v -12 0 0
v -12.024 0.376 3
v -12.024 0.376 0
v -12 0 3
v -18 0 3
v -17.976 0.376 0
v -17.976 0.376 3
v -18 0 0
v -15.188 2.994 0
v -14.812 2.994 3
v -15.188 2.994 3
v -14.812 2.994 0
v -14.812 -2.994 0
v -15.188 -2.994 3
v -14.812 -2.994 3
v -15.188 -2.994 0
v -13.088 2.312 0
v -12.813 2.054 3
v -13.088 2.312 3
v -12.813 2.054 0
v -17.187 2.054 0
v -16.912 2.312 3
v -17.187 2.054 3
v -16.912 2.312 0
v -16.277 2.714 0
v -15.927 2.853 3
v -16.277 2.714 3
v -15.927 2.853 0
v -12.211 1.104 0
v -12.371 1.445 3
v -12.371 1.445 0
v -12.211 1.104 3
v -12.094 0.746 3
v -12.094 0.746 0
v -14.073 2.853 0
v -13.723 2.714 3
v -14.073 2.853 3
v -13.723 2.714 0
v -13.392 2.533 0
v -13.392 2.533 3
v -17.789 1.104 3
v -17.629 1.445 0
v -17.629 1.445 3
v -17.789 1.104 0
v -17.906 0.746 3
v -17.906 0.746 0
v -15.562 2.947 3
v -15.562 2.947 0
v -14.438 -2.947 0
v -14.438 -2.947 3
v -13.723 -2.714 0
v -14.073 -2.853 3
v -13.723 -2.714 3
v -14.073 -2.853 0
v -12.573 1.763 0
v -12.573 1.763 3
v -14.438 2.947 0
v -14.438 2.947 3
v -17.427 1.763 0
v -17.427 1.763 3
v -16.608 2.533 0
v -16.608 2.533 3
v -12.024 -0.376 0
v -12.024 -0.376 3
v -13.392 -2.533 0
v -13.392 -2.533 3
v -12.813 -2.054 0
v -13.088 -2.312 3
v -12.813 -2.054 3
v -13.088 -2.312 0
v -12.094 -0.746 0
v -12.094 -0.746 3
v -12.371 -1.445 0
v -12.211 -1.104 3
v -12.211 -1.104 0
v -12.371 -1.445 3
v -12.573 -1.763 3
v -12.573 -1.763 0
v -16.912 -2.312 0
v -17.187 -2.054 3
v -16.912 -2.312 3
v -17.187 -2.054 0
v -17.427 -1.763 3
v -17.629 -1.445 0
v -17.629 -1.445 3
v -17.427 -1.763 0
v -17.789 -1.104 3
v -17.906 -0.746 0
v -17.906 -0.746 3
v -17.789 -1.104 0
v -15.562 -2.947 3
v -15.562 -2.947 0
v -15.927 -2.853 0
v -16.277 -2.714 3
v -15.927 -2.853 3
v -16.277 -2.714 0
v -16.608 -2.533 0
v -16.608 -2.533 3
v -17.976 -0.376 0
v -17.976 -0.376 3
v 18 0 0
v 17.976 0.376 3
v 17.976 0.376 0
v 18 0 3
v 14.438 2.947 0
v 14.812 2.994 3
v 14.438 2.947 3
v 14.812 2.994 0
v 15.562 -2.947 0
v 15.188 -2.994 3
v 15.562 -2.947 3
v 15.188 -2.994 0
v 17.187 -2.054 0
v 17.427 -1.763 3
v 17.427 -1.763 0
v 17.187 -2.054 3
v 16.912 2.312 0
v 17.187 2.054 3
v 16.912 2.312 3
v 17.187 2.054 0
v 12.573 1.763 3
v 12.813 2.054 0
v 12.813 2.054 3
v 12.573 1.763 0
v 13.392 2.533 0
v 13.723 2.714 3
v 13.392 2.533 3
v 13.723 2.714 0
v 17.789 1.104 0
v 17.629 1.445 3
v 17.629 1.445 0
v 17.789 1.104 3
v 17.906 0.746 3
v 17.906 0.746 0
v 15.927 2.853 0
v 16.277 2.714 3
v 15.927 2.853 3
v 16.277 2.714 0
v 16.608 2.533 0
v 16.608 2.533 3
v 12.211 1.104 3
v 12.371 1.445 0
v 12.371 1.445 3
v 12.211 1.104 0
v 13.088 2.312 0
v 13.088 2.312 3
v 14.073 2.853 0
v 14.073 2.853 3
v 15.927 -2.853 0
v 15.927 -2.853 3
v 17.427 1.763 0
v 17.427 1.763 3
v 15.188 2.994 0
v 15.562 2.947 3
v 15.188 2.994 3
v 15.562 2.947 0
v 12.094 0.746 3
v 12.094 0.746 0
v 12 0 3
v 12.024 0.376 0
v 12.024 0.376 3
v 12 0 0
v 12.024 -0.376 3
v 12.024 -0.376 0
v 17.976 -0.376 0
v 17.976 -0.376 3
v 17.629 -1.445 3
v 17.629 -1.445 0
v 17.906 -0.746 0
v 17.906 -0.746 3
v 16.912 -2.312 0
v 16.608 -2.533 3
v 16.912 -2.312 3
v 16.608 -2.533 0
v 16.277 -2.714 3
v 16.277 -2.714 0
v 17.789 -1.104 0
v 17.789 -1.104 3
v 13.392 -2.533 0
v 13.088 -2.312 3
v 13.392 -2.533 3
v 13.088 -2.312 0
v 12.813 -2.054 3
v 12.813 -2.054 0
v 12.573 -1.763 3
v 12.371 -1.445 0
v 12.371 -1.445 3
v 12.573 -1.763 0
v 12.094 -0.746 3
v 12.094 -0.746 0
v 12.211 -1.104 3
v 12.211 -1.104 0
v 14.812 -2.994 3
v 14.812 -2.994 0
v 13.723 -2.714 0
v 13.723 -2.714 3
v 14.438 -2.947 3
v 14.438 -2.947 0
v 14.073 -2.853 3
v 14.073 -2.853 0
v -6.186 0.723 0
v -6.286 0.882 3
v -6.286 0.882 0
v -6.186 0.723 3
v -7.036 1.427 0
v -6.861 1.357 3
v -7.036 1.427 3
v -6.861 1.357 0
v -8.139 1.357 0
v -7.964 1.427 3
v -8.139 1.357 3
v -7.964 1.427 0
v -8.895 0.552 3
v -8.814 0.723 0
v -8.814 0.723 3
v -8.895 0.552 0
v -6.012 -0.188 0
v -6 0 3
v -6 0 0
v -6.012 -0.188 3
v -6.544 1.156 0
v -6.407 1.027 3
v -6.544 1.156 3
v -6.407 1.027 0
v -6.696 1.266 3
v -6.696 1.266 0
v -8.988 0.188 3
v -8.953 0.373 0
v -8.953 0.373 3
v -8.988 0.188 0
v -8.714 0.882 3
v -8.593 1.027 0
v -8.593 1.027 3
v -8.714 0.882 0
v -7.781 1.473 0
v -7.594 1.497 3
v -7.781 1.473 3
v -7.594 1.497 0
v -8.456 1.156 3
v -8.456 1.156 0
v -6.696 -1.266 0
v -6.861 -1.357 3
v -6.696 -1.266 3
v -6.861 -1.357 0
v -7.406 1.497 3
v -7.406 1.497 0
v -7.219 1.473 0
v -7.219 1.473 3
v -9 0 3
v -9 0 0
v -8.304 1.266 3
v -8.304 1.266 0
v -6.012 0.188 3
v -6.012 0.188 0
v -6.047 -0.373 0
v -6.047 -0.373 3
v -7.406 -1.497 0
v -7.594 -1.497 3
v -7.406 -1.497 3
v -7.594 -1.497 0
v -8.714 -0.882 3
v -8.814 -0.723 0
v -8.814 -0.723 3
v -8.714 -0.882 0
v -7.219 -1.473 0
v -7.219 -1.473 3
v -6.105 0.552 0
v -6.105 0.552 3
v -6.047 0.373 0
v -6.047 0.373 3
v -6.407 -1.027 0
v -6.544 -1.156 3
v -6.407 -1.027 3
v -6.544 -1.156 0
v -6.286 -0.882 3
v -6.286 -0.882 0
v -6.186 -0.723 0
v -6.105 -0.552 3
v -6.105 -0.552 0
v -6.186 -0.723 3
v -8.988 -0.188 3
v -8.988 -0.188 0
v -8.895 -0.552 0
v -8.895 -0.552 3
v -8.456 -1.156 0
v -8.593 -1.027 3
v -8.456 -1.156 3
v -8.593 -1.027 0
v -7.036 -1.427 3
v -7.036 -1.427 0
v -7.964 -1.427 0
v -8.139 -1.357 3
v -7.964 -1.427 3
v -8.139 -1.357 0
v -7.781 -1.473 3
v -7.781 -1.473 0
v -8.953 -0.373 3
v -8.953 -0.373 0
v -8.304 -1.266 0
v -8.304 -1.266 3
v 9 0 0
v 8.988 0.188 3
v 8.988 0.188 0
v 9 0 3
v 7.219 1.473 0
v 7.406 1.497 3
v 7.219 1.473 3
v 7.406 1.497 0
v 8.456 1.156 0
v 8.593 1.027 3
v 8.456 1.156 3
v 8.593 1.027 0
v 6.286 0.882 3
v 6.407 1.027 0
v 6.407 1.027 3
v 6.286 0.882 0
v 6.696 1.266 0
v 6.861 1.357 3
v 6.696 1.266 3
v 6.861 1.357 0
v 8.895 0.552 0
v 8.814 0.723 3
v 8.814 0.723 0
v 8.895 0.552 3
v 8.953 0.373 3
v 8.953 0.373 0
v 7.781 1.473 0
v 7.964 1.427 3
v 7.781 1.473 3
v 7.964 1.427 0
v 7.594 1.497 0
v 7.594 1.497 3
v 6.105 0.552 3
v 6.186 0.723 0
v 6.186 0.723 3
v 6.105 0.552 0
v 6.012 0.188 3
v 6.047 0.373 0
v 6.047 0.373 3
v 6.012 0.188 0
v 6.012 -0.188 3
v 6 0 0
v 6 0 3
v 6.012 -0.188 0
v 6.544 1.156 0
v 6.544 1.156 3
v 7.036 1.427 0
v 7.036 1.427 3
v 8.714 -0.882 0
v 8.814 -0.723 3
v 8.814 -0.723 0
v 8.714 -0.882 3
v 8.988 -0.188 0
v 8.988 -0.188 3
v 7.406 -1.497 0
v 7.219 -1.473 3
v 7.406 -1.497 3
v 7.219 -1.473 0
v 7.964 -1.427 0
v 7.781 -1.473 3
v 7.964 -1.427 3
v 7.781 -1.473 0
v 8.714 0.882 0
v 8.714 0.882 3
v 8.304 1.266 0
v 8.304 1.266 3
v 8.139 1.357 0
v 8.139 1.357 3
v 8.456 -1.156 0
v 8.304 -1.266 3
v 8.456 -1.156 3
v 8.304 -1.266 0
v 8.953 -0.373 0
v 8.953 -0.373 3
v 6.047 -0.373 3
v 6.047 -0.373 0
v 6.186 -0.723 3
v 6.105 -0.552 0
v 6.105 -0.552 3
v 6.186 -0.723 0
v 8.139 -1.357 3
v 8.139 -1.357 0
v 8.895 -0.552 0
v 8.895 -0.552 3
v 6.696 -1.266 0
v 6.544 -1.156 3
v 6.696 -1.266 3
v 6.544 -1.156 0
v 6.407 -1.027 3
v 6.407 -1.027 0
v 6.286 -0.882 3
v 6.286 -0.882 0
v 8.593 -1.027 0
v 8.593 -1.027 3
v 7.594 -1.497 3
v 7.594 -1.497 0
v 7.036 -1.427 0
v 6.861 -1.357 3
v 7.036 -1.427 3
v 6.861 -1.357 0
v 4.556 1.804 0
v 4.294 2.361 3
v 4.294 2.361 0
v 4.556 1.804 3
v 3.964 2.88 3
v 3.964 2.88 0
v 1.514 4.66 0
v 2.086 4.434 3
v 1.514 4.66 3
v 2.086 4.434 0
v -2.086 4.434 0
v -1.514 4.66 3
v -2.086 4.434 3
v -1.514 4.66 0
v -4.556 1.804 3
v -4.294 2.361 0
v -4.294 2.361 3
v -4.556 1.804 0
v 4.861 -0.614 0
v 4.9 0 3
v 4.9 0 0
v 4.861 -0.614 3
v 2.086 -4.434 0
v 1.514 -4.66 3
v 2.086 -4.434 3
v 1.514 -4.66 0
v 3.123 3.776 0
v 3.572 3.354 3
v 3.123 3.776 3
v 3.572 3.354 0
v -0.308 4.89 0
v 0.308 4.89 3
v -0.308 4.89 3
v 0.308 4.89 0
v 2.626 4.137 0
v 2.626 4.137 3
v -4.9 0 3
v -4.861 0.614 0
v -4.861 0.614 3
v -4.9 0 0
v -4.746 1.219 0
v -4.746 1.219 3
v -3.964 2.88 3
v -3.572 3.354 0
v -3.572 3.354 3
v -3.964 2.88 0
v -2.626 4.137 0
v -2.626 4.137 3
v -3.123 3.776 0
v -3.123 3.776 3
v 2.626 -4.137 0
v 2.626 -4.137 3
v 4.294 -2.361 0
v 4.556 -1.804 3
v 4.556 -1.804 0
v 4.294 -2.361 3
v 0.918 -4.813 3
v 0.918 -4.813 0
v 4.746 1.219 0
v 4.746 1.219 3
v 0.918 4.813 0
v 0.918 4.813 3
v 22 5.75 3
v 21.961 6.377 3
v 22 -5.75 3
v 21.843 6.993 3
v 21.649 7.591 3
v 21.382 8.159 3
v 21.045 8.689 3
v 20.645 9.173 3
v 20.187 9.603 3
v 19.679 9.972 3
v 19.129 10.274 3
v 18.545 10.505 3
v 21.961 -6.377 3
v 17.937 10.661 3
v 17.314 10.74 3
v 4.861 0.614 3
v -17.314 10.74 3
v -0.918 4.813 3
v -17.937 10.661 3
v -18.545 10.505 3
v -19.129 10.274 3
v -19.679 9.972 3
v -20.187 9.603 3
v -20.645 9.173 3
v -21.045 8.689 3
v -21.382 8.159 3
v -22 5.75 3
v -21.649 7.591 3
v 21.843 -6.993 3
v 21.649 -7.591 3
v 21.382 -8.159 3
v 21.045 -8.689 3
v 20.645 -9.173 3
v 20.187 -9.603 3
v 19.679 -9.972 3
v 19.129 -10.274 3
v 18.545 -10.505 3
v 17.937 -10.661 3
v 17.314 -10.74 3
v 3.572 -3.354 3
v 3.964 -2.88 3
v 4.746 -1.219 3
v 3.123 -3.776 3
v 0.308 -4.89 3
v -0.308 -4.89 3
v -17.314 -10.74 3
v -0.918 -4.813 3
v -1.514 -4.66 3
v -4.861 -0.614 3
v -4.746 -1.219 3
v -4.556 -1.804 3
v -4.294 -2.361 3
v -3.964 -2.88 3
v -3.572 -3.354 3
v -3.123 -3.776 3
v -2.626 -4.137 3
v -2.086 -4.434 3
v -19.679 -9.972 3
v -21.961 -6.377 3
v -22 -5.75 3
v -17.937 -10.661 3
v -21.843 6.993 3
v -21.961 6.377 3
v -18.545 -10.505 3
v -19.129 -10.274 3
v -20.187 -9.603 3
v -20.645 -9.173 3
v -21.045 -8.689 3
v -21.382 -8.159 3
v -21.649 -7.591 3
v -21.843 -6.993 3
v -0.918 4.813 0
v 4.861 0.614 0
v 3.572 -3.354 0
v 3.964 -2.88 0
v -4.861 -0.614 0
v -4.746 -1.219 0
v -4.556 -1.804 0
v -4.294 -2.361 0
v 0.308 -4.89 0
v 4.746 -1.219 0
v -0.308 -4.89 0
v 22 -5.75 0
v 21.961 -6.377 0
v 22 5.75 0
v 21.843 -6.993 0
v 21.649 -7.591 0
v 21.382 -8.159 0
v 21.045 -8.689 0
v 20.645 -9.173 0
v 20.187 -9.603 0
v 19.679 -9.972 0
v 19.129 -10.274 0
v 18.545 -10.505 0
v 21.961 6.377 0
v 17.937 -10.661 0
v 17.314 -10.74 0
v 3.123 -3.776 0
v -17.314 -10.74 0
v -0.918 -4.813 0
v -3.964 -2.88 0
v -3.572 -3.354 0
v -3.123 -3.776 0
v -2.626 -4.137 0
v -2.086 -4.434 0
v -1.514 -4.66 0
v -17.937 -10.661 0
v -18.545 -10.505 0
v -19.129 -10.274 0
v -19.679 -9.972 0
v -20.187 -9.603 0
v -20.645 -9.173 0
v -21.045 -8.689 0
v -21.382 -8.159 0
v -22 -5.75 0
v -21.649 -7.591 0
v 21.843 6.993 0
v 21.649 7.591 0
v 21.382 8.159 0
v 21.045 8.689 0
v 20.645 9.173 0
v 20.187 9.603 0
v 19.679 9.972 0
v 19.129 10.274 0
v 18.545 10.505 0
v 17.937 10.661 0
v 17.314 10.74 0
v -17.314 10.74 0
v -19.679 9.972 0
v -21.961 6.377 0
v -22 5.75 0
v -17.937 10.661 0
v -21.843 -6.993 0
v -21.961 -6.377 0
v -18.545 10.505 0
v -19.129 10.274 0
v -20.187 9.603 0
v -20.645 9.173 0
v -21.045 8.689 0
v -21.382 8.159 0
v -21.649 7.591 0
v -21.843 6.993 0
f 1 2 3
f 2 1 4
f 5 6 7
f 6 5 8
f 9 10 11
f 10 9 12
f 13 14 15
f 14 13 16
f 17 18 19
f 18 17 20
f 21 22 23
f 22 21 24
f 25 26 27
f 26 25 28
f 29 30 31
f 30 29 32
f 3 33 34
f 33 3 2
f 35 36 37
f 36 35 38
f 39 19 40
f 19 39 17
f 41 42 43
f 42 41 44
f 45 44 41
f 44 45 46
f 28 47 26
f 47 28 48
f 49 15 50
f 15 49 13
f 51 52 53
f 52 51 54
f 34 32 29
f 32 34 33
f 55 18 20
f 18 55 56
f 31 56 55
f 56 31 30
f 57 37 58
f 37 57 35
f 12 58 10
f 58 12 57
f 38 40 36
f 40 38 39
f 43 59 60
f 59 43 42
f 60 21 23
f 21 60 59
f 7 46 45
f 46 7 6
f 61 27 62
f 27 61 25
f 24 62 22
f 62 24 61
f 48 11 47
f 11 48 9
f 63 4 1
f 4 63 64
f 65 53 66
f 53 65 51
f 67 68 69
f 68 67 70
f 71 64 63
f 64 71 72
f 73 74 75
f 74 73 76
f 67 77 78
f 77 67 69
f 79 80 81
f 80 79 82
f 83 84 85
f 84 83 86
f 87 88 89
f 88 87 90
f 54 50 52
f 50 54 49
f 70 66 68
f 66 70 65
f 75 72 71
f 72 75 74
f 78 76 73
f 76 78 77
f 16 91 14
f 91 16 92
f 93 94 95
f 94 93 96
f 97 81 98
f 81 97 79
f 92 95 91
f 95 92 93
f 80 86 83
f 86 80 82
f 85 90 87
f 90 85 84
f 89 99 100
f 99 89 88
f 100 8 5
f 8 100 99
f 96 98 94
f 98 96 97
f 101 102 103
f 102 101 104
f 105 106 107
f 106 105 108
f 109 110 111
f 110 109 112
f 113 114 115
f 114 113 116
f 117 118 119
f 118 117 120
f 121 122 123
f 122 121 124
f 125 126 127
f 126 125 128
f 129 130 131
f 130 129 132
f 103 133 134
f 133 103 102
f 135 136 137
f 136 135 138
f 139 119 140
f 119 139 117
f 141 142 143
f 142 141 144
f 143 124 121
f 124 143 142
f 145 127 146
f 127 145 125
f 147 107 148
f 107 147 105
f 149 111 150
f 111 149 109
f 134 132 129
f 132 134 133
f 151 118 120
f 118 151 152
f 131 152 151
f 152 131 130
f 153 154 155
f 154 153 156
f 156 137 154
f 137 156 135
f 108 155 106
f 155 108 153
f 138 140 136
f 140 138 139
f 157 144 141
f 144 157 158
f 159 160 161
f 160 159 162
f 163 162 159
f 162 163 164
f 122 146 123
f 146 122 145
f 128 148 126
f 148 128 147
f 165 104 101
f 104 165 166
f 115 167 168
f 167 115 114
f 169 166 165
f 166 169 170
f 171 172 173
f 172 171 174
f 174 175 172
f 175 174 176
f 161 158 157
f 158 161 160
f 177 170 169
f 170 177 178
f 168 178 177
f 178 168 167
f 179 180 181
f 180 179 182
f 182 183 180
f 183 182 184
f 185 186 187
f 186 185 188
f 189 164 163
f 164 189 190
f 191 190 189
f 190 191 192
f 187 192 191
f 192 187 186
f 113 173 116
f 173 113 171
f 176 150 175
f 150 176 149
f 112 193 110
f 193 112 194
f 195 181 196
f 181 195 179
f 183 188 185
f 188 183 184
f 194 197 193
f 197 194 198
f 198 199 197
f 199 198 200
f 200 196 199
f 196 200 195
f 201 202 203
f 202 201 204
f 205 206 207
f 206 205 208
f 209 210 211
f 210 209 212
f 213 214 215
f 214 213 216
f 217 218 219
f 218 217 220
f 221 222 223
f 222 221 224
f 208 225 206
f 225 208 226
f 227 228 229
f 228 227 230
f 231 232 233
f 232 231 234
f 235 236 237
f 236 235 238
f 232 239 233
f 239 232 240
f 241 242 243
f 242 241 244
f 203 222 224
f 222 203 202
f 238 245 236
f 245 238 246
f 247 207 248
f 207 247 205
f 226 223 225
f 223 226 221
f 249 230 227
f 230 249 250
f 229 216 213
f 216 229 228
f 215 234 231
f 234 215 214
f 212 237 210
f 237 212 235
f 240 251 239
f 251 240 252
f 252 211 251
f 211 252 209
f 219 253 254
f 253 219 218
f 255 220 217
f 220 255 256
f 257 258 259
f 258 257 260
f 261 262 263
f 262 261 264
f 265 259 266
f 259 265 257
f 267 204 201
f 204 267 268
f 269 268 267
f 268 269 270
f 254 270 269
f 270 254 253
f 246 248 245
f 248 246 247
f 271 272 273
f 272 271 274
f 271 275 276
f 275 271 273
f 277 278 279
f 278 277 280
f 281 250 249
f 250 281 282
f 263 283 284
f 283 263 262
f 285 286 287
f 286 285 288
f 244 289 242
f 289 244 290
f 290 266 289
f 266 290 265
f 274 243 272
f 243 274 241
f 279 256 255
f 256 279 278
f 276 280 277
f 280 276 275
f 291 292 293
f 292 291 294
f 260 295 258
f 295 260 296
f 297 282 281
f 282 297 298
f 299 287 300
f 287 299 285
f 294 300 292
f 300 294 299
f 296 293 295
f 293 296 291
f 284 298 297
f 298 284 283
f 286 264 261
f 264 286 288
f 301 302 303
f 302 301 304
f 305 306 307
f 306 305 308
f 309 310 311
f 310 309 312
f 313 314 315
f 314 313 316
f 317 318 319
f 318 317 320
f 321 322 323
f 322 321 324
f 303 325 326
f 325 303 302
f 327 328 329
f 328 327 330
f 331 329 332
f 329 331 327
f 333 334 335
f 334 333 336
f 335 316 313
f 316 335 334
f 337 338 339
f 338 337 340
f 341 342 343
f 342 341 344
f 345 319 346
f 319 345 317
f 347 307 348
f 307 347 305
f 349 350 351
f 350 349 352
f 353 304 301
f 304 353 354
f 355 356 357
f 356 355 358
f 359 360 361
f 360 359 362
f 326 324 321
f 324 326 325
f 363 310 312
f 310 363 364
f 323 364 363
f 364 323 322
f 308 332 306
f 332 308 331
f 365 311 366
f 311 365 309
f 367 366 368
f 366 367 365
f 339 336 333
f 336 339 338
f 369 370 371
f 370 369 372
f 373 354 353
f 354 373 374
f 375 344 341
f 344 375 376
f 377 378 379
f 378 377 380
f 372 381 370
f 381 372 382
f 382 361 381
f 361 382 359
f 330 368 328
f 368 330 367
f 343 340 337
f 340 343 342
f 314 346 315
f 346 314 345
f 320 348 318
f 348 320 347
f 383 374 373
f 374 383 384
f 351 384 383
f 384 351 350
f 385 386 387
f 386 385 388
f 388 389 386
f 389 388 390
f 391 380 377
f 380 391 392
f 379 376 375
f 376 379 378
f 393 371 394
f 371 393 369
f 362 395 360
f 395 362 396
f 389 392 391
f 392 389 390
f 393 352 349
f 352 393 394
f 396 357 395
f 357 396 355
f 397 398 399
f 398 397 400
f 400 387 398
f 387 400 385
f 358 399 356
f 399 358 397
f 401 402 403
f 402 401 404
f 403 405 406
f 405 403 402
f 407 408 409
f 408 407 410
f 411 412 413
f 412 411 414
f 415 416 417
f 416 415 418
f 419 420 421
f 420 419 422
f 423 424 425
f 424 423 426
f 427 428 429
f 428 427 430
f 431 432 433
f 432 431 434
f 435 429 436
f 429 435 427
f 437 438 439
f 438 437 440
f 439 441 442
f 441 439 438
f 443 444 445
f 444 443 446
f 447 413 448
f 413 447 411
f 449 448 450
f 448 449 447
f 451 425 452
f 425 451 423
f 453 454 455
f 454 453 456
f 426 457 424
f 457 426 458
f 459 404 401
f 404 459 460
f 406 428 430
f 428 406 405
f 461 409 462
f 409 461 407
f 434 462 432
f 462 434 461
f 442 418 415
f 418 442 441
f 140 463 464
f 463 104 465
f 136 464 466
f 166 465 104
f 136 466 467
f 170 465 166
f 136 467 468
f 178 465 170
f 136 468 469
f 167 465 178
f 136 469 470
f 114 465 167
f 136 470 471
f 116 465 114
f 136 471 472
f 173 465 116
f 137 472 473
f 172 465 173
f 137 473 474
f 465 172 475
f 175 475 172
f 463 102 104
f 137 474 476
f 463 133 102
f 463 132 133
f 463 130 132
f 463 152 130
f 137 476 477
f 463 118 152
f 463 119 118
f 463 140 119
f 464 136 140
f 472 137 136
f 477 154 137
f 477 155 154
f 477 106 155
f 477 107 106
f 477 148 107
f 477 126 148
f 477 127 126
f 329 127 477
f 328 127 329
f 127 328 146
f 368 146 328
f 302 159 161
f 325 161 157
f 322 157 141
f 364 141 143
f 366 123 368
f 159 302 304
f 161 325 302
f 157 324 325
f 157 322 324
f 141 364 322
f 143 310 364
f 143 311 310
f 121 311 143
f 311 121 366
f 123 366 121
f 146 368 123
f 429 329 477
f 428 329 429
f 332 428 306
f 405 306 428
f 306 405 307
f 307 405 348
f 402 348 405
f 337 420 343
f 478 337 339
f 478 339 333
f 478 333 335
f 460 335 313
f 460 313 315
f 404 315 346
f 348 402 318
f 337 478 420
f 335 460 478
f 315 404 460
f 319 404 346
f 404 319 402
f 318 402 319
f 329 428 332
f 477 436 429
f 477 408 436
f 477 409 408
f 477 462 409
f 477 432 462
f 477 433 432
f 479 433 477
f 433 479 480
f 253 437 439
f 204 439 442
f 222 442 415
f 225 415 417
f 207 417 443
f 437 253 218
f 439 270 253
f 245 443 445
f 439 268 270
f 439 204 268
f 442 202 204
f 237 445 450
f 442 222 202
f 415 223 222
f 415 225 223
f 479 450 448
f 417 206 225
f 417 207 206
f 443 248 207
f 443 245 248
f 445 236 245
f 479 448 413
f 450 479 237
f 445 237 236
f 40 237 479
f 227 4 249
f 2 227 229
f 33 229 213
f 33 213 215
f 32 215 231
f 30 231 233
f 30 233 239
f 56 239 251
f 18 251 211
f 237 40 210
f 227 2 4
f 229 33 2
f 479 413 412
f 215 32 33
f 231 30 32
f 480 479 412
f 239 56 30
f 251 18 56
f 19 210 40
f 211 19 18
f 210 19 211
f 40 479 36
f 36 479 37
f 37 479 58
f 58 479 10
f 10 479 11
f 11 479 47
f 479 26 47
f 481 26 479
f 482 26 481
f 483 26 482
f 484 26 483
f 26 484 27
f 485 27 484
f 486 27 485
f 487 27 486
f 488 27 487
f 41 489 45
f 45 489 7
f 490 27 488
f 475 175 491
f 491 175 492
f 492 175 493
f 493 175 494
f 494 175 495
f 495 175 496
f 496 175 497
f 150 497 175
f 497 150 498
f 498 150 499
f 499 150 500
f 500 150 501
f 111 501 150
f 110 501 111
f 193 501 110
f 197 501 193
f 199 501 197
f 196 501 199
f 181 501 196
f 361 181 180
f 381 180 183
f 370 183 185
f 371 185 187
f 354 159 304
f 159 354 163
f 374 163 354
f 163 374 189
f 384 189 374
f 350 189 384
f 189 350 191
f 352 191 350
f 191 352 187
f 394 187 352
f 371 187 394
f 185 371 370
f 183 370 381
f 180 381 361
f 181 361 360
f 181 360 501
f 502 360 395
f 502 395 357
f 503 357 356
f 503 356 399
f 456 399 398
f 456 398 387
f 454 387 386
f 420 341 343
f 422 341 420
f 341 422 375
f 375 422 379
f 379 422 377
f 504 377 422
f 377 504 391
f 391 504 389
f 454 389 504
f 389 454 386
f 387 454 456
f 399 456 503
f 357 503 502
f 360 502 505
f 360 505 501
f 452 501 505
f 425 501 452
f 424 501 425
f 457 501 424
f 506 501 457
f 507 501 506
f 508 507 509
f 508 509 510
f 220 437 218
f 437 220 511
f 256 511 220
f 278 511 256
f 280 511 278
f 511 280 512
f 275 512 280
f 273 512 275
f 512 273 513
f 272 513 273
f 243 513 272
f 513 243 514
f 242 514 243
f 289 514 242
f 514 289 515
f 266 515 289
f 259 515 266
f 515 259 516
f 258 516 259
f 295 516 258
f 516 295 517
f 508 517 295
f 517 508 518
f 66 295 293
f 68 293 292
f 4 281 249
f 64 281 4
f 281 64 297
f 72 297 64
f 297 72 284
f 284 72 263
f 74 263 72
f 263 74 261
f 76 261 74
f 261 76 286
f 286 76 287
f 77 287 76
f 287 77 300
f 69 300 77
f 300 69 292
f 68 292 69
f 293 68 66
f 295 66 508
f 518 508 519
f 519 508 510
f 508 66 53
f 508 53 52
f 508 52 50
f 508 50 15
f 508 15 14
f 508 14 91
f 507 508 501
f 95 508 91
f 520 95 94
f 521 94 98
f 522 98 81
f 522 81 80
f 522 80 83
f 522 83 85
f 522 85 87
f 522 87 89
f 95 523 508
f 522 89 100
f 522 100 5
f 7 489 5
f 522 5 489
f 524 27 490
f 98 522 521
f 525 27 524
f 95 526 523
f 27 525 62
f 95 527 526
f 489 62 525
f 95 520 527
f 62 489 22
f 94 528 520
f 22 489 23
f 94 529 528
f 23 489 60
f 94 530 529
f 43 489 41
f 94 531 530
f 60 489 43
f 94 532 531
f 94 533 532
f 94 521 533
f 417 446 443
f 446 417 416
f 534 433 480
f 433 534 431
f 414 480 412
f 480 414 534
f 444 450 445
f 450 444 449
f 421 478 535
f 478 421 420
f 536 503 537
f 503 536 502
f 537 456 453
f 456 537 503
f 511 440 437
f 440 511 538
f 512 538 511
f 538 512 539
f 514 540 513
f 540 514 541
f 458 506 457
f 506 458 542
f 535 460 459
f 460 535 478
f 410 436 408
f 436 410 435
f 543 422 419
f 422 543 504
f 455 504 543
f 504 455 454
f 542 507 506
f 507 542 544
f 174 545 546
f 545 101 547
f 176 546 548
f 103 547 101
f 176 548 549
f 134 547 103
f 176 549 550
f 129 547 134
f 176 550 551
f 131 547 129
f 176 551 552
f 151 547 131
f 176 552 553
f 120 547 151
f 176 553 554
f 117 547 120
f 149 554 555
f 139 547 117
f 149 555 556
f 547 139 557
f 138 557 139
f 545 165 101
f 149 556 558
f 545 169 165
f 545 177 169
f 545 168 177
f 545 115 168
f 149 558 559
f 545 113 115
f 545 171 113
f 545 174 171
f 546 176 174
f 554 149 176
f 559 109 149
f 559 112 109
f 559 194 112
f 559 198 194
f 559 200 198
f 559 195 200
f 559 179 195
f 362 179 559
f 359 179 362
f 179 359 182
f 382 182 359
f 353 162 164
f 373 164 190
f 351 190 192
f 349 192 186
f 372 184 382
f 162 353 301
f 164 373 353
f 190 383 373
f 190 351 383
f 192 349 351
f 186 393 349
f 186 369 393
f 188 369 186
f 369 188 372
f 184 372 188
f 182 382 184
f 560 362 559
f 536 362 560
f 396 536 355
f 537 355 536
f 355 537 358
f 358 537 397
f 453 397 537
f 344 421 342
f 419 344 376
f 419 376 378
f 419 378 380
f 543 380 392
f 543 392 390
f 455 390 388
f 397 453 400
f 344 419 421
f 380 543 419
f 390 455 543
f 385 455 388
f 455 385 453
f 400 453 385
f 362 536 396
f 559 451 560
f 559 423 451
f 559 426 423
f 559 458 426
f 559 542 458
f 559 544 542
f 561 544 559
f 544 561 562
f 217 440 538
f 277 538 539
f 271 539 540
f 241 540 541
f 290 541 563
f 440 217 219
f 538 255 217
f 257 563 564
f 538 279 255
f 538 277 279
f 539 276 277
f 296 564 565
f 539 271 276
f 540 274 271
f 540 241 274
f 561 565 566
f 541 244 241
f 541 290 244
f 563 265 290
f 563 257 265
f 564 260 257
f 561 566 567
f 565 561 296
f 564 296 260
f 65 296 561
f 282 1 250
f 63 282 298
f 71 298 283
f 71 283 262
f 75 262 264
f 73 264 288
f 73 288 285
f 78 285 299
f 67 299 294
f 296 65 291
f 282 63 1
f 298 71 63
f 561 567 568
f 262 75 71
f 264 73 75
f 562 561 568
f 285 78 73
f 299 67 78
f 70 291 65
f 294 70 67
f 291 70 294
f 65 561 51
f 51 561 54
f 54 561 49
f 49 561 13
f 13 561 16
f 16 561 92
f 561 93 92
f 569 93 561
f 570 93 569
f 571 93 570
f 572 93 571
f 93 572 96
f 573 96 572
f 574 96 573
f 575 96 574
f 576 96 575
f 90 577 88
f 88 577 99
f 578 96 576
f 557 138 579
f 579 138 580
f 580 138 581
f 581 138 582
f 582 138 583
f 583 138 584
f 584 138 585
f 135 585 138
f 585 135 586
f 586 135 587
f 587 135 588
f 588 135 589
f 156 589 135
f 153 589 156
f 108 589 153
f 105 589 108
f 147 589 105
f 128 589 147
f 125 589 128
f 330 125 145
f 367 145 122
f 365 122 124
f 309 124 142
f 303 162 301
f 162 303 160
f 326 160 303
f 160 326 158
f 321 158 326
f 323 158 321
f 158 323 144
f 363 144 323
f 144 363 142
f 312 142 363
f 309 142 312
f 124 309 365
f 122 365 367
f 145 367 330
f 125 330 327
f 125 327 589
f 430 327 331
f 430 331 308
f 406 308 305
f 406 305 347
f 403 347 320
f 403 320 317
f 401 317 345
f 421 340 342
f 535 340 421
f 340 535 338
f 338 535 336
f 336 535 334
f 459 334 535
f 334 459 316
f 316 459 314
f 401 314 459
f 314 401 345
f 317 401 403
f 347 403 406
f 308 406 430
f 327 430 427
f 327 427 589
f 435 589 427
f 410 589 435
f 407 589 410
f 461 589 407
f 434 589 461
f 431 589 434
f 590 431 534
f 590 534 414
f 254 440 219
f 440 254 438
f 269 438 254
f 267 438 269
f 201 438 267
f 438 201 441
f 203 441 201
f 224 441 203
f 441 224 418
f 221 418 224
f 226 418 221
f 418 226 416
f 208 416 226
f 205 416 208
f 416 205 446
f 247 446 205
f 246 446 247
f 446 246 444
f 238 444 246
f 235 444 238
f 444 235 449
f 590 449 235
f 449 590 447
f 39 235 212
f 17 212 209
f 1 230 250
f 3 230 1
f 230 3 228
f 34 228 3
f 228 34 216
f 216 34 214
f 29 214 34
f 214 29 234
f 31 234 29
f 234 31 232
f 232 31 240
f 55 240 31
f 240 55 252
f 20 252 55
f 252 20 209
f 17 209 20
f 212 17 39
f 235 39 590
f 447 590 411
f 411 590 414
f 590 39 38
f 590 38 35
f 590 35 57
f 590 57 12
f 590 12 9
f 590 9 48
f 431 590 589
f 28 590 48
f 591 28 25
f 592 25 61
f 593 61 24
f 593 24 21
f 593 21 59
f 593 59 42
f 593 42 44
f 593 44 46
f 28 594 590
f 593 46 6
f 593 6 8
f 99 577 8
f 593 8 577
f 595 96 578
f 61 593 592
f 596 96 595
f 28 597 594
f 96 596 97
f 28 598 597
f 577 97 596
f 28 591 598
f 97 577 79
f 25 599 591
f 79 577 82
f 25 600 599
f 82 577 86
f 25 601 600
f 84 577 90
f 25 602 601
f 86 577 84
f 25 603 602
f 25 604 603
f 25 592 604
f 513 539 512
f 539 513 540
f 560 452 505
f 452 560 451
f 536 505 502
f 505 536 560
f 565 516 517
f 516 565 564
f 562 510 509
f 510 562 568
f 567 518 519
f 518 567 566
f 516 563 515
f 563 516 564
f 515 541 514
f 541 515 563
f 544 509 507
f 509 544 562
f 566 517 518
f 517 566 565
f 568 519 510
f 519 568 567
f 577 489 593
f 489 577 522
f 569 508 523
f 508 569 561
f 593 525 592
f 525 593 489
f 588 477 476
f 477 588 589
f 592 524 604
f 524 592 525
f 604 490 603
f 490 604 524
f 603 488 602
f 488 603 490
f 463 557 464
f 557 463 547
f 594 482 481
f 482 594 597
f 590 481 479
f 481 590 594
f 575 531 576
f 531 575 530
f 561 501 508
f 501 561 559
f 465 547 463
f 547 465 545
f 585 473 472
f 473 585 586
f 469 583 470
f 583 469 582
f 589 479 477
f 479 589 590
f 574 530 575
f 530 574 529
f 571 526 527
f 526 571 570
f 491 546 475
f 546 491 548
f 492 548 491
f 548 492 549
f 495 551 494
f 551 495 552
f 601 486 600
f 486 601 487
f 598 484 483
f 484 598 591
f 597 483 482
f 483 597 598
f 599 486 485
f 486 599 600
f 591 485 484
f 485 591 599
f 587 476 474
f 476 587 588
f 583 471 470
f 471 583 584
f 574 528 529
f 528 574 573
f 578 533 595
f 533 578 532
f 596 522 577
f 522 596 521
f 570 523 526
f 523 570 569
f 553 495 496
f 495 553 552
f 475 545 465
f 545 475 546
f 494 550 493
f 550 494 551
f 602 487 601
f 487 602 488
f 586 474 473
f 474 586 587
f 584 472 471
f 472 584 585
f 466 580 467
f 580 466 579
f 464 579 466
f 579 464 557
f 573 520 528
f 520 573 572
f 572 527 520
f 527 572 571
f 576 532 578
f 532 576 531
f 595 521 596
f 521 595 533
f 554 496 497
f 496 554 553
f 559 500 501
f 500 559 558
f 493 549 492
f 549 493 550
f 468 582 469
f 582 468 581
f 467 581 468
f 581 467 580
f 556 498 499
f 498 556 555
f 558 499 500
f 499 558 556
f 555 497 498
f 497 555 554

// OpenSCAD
$fn = 50;


difference() {
	union() {
		hull() {
			translate(v = [-17.0000000000, 5.7500000000, 0]) {
				cylinder(h = 3, r = 5);
			}
			translate(v = [17.0000000000, 5.7500000000, 0]) {
				cylinder(h = 3, r = 5);
			}
			translate(v = [-17.0000000000, -5.7500000000, 0]) {
				cylinder(h = 3, r = 5);
			}
			translate(v = [17.0000000000, -5.7500000000, 0]) {
				cylinder(h = 3, r = 5);
			}
		}
	}
	union() {
		translate(v = [-15.0000000000, 0.0000000000, -100.0000000000]) {
			cylinder(h = 200, r = 3.0000000000);
		}
		translate(v = [15.0000000000, 0.0000000000, -100.0000000000]) {
			cylinder(h = 200, r = 3.0000000000);
		}
		translate(v = [-15.0000000000, 0.0000000000, -100.0000000000]) {
			cylinder(h = 200, r = 3.0000000000);
		}
		translate(v = [0.0000000000, 0.0000000000, -100.0000000000]) {
			cylinder(h = 200, r = 3.0000000000);
		}
		translate(v = [15.0000000000, 0.0000000000, -100.0000000000]) {
			cylinder(h = 200, r = 3.0000000000);
		}
		translate(v = [15.0000000000, 0.0000000000, -100.0000000000]) {
			cylinder(h = 200, r = 3.0000000000);
		}
		translate(v = [-15.0000000000, 0.0000000000, -100.0000000000]) {
			cylinder(h = 200, r = 1.5000000000);
		}
		translate(v = [15.0000000000, 0.0000000000, -100.0000000000]) {
			cylinder(h = 200, r = 1.5000000000);
		}
		translate(v = [-15.0000000000, 0.0000000000, -100.0000000000]) {
			cylinder(h = 200, r = 1.5000000000);
		}
		translate(v = [-7.5000000000, 0.0000000000, -100.0000000000]) {
			cylinder(h = 200, r = 1.5000000000);
		}
		translate(v = [0.0000000000, 0.0000000000, -100.0000000000]) {
			cylinder(h = 200, r = 1.5000000000);
		}
		translate(v = [7.5000000000, 0.0000000000, -100.0000000000]) {
			cylinder(h = 200, r = 1.5000000000);
		}
		translate(v = [15.0000000000, 0.0000000000, -100.0000000000]) {
			cylinder(h = 200, r = 1.5000000000);
		}
		translate(v = [-15.0000000000, 0.0000000000, -100.0000000000]) {
			cylinder(h = 200, r = 1.5000000000);
		}
		translate(v = [15.0000000000, 0.0000000000, -100.0000000000]) {
			cylinder(h = 200, r = 1.5000000000);
		}
		translate(v = [-15.0000000000, 0.0000000000, -100.0000000000]) {
			cylinder(h = 200, r = 1.5000000000);
		}
		translate(v = [-7.5000000000, 0.0000000000, -100.0000000000]) {
			cylinder(h = 200, r = 1.5000000000);
		}
		translate(v = [0.0000000000, 0.0000000000, -100.0000000000]) {
			cylinder(h = 200, r = 1.5000000000);
		}
		translate(v = [7.5000000000, 0.0000000000, -100.0000000000]) {
			cylinder(h = 200, r = 1.5000000000);
		}
		translate(v = [15.0000000000, 0.0000000000, -100.0000000000]) {
			cylinder(h = 200, r = 1.5000000000);
		}
		translate(v = [-15.0000000000, 0.0000000000, -100.0000000000]) {
			cylinder(h = 200, r = 1.5000000000);
		}
		translate(v = [15.0000000000, 0.0000000000, -100.0000000000]) {
			cylinder(h = 200, r = 1.5000000000);
		}
		translate(v = [-15.0000000000, 0.0000000000, -100.0000000000]) {
			cylinder(h = 200, r = 1.5000000000);
		}
		translate(v = [-7.5000000000, 0.0000000000, -100.0000000000]) {
			cylinder(h = 200, r = 1.5000000000);
		}
		translate(v = [0.0000000000, 0.0000000000, -100.0000000000]) {
			cylinder(h = 200, r = 1.5000000000);
		}
		translate(v = [7.5000000000, 0.0000000000, -100.0000000000]) {
			cylinder(h = 200, r = 1.5000000000);
		}
		translate(v = [15.0000000000, 0.0000000000, -100.0000000000]) {
			cylinder(h = 200, r = 1.5000000000);
		}
		#cylinder(h = 3, r = 4.9000000000);
	}
}
